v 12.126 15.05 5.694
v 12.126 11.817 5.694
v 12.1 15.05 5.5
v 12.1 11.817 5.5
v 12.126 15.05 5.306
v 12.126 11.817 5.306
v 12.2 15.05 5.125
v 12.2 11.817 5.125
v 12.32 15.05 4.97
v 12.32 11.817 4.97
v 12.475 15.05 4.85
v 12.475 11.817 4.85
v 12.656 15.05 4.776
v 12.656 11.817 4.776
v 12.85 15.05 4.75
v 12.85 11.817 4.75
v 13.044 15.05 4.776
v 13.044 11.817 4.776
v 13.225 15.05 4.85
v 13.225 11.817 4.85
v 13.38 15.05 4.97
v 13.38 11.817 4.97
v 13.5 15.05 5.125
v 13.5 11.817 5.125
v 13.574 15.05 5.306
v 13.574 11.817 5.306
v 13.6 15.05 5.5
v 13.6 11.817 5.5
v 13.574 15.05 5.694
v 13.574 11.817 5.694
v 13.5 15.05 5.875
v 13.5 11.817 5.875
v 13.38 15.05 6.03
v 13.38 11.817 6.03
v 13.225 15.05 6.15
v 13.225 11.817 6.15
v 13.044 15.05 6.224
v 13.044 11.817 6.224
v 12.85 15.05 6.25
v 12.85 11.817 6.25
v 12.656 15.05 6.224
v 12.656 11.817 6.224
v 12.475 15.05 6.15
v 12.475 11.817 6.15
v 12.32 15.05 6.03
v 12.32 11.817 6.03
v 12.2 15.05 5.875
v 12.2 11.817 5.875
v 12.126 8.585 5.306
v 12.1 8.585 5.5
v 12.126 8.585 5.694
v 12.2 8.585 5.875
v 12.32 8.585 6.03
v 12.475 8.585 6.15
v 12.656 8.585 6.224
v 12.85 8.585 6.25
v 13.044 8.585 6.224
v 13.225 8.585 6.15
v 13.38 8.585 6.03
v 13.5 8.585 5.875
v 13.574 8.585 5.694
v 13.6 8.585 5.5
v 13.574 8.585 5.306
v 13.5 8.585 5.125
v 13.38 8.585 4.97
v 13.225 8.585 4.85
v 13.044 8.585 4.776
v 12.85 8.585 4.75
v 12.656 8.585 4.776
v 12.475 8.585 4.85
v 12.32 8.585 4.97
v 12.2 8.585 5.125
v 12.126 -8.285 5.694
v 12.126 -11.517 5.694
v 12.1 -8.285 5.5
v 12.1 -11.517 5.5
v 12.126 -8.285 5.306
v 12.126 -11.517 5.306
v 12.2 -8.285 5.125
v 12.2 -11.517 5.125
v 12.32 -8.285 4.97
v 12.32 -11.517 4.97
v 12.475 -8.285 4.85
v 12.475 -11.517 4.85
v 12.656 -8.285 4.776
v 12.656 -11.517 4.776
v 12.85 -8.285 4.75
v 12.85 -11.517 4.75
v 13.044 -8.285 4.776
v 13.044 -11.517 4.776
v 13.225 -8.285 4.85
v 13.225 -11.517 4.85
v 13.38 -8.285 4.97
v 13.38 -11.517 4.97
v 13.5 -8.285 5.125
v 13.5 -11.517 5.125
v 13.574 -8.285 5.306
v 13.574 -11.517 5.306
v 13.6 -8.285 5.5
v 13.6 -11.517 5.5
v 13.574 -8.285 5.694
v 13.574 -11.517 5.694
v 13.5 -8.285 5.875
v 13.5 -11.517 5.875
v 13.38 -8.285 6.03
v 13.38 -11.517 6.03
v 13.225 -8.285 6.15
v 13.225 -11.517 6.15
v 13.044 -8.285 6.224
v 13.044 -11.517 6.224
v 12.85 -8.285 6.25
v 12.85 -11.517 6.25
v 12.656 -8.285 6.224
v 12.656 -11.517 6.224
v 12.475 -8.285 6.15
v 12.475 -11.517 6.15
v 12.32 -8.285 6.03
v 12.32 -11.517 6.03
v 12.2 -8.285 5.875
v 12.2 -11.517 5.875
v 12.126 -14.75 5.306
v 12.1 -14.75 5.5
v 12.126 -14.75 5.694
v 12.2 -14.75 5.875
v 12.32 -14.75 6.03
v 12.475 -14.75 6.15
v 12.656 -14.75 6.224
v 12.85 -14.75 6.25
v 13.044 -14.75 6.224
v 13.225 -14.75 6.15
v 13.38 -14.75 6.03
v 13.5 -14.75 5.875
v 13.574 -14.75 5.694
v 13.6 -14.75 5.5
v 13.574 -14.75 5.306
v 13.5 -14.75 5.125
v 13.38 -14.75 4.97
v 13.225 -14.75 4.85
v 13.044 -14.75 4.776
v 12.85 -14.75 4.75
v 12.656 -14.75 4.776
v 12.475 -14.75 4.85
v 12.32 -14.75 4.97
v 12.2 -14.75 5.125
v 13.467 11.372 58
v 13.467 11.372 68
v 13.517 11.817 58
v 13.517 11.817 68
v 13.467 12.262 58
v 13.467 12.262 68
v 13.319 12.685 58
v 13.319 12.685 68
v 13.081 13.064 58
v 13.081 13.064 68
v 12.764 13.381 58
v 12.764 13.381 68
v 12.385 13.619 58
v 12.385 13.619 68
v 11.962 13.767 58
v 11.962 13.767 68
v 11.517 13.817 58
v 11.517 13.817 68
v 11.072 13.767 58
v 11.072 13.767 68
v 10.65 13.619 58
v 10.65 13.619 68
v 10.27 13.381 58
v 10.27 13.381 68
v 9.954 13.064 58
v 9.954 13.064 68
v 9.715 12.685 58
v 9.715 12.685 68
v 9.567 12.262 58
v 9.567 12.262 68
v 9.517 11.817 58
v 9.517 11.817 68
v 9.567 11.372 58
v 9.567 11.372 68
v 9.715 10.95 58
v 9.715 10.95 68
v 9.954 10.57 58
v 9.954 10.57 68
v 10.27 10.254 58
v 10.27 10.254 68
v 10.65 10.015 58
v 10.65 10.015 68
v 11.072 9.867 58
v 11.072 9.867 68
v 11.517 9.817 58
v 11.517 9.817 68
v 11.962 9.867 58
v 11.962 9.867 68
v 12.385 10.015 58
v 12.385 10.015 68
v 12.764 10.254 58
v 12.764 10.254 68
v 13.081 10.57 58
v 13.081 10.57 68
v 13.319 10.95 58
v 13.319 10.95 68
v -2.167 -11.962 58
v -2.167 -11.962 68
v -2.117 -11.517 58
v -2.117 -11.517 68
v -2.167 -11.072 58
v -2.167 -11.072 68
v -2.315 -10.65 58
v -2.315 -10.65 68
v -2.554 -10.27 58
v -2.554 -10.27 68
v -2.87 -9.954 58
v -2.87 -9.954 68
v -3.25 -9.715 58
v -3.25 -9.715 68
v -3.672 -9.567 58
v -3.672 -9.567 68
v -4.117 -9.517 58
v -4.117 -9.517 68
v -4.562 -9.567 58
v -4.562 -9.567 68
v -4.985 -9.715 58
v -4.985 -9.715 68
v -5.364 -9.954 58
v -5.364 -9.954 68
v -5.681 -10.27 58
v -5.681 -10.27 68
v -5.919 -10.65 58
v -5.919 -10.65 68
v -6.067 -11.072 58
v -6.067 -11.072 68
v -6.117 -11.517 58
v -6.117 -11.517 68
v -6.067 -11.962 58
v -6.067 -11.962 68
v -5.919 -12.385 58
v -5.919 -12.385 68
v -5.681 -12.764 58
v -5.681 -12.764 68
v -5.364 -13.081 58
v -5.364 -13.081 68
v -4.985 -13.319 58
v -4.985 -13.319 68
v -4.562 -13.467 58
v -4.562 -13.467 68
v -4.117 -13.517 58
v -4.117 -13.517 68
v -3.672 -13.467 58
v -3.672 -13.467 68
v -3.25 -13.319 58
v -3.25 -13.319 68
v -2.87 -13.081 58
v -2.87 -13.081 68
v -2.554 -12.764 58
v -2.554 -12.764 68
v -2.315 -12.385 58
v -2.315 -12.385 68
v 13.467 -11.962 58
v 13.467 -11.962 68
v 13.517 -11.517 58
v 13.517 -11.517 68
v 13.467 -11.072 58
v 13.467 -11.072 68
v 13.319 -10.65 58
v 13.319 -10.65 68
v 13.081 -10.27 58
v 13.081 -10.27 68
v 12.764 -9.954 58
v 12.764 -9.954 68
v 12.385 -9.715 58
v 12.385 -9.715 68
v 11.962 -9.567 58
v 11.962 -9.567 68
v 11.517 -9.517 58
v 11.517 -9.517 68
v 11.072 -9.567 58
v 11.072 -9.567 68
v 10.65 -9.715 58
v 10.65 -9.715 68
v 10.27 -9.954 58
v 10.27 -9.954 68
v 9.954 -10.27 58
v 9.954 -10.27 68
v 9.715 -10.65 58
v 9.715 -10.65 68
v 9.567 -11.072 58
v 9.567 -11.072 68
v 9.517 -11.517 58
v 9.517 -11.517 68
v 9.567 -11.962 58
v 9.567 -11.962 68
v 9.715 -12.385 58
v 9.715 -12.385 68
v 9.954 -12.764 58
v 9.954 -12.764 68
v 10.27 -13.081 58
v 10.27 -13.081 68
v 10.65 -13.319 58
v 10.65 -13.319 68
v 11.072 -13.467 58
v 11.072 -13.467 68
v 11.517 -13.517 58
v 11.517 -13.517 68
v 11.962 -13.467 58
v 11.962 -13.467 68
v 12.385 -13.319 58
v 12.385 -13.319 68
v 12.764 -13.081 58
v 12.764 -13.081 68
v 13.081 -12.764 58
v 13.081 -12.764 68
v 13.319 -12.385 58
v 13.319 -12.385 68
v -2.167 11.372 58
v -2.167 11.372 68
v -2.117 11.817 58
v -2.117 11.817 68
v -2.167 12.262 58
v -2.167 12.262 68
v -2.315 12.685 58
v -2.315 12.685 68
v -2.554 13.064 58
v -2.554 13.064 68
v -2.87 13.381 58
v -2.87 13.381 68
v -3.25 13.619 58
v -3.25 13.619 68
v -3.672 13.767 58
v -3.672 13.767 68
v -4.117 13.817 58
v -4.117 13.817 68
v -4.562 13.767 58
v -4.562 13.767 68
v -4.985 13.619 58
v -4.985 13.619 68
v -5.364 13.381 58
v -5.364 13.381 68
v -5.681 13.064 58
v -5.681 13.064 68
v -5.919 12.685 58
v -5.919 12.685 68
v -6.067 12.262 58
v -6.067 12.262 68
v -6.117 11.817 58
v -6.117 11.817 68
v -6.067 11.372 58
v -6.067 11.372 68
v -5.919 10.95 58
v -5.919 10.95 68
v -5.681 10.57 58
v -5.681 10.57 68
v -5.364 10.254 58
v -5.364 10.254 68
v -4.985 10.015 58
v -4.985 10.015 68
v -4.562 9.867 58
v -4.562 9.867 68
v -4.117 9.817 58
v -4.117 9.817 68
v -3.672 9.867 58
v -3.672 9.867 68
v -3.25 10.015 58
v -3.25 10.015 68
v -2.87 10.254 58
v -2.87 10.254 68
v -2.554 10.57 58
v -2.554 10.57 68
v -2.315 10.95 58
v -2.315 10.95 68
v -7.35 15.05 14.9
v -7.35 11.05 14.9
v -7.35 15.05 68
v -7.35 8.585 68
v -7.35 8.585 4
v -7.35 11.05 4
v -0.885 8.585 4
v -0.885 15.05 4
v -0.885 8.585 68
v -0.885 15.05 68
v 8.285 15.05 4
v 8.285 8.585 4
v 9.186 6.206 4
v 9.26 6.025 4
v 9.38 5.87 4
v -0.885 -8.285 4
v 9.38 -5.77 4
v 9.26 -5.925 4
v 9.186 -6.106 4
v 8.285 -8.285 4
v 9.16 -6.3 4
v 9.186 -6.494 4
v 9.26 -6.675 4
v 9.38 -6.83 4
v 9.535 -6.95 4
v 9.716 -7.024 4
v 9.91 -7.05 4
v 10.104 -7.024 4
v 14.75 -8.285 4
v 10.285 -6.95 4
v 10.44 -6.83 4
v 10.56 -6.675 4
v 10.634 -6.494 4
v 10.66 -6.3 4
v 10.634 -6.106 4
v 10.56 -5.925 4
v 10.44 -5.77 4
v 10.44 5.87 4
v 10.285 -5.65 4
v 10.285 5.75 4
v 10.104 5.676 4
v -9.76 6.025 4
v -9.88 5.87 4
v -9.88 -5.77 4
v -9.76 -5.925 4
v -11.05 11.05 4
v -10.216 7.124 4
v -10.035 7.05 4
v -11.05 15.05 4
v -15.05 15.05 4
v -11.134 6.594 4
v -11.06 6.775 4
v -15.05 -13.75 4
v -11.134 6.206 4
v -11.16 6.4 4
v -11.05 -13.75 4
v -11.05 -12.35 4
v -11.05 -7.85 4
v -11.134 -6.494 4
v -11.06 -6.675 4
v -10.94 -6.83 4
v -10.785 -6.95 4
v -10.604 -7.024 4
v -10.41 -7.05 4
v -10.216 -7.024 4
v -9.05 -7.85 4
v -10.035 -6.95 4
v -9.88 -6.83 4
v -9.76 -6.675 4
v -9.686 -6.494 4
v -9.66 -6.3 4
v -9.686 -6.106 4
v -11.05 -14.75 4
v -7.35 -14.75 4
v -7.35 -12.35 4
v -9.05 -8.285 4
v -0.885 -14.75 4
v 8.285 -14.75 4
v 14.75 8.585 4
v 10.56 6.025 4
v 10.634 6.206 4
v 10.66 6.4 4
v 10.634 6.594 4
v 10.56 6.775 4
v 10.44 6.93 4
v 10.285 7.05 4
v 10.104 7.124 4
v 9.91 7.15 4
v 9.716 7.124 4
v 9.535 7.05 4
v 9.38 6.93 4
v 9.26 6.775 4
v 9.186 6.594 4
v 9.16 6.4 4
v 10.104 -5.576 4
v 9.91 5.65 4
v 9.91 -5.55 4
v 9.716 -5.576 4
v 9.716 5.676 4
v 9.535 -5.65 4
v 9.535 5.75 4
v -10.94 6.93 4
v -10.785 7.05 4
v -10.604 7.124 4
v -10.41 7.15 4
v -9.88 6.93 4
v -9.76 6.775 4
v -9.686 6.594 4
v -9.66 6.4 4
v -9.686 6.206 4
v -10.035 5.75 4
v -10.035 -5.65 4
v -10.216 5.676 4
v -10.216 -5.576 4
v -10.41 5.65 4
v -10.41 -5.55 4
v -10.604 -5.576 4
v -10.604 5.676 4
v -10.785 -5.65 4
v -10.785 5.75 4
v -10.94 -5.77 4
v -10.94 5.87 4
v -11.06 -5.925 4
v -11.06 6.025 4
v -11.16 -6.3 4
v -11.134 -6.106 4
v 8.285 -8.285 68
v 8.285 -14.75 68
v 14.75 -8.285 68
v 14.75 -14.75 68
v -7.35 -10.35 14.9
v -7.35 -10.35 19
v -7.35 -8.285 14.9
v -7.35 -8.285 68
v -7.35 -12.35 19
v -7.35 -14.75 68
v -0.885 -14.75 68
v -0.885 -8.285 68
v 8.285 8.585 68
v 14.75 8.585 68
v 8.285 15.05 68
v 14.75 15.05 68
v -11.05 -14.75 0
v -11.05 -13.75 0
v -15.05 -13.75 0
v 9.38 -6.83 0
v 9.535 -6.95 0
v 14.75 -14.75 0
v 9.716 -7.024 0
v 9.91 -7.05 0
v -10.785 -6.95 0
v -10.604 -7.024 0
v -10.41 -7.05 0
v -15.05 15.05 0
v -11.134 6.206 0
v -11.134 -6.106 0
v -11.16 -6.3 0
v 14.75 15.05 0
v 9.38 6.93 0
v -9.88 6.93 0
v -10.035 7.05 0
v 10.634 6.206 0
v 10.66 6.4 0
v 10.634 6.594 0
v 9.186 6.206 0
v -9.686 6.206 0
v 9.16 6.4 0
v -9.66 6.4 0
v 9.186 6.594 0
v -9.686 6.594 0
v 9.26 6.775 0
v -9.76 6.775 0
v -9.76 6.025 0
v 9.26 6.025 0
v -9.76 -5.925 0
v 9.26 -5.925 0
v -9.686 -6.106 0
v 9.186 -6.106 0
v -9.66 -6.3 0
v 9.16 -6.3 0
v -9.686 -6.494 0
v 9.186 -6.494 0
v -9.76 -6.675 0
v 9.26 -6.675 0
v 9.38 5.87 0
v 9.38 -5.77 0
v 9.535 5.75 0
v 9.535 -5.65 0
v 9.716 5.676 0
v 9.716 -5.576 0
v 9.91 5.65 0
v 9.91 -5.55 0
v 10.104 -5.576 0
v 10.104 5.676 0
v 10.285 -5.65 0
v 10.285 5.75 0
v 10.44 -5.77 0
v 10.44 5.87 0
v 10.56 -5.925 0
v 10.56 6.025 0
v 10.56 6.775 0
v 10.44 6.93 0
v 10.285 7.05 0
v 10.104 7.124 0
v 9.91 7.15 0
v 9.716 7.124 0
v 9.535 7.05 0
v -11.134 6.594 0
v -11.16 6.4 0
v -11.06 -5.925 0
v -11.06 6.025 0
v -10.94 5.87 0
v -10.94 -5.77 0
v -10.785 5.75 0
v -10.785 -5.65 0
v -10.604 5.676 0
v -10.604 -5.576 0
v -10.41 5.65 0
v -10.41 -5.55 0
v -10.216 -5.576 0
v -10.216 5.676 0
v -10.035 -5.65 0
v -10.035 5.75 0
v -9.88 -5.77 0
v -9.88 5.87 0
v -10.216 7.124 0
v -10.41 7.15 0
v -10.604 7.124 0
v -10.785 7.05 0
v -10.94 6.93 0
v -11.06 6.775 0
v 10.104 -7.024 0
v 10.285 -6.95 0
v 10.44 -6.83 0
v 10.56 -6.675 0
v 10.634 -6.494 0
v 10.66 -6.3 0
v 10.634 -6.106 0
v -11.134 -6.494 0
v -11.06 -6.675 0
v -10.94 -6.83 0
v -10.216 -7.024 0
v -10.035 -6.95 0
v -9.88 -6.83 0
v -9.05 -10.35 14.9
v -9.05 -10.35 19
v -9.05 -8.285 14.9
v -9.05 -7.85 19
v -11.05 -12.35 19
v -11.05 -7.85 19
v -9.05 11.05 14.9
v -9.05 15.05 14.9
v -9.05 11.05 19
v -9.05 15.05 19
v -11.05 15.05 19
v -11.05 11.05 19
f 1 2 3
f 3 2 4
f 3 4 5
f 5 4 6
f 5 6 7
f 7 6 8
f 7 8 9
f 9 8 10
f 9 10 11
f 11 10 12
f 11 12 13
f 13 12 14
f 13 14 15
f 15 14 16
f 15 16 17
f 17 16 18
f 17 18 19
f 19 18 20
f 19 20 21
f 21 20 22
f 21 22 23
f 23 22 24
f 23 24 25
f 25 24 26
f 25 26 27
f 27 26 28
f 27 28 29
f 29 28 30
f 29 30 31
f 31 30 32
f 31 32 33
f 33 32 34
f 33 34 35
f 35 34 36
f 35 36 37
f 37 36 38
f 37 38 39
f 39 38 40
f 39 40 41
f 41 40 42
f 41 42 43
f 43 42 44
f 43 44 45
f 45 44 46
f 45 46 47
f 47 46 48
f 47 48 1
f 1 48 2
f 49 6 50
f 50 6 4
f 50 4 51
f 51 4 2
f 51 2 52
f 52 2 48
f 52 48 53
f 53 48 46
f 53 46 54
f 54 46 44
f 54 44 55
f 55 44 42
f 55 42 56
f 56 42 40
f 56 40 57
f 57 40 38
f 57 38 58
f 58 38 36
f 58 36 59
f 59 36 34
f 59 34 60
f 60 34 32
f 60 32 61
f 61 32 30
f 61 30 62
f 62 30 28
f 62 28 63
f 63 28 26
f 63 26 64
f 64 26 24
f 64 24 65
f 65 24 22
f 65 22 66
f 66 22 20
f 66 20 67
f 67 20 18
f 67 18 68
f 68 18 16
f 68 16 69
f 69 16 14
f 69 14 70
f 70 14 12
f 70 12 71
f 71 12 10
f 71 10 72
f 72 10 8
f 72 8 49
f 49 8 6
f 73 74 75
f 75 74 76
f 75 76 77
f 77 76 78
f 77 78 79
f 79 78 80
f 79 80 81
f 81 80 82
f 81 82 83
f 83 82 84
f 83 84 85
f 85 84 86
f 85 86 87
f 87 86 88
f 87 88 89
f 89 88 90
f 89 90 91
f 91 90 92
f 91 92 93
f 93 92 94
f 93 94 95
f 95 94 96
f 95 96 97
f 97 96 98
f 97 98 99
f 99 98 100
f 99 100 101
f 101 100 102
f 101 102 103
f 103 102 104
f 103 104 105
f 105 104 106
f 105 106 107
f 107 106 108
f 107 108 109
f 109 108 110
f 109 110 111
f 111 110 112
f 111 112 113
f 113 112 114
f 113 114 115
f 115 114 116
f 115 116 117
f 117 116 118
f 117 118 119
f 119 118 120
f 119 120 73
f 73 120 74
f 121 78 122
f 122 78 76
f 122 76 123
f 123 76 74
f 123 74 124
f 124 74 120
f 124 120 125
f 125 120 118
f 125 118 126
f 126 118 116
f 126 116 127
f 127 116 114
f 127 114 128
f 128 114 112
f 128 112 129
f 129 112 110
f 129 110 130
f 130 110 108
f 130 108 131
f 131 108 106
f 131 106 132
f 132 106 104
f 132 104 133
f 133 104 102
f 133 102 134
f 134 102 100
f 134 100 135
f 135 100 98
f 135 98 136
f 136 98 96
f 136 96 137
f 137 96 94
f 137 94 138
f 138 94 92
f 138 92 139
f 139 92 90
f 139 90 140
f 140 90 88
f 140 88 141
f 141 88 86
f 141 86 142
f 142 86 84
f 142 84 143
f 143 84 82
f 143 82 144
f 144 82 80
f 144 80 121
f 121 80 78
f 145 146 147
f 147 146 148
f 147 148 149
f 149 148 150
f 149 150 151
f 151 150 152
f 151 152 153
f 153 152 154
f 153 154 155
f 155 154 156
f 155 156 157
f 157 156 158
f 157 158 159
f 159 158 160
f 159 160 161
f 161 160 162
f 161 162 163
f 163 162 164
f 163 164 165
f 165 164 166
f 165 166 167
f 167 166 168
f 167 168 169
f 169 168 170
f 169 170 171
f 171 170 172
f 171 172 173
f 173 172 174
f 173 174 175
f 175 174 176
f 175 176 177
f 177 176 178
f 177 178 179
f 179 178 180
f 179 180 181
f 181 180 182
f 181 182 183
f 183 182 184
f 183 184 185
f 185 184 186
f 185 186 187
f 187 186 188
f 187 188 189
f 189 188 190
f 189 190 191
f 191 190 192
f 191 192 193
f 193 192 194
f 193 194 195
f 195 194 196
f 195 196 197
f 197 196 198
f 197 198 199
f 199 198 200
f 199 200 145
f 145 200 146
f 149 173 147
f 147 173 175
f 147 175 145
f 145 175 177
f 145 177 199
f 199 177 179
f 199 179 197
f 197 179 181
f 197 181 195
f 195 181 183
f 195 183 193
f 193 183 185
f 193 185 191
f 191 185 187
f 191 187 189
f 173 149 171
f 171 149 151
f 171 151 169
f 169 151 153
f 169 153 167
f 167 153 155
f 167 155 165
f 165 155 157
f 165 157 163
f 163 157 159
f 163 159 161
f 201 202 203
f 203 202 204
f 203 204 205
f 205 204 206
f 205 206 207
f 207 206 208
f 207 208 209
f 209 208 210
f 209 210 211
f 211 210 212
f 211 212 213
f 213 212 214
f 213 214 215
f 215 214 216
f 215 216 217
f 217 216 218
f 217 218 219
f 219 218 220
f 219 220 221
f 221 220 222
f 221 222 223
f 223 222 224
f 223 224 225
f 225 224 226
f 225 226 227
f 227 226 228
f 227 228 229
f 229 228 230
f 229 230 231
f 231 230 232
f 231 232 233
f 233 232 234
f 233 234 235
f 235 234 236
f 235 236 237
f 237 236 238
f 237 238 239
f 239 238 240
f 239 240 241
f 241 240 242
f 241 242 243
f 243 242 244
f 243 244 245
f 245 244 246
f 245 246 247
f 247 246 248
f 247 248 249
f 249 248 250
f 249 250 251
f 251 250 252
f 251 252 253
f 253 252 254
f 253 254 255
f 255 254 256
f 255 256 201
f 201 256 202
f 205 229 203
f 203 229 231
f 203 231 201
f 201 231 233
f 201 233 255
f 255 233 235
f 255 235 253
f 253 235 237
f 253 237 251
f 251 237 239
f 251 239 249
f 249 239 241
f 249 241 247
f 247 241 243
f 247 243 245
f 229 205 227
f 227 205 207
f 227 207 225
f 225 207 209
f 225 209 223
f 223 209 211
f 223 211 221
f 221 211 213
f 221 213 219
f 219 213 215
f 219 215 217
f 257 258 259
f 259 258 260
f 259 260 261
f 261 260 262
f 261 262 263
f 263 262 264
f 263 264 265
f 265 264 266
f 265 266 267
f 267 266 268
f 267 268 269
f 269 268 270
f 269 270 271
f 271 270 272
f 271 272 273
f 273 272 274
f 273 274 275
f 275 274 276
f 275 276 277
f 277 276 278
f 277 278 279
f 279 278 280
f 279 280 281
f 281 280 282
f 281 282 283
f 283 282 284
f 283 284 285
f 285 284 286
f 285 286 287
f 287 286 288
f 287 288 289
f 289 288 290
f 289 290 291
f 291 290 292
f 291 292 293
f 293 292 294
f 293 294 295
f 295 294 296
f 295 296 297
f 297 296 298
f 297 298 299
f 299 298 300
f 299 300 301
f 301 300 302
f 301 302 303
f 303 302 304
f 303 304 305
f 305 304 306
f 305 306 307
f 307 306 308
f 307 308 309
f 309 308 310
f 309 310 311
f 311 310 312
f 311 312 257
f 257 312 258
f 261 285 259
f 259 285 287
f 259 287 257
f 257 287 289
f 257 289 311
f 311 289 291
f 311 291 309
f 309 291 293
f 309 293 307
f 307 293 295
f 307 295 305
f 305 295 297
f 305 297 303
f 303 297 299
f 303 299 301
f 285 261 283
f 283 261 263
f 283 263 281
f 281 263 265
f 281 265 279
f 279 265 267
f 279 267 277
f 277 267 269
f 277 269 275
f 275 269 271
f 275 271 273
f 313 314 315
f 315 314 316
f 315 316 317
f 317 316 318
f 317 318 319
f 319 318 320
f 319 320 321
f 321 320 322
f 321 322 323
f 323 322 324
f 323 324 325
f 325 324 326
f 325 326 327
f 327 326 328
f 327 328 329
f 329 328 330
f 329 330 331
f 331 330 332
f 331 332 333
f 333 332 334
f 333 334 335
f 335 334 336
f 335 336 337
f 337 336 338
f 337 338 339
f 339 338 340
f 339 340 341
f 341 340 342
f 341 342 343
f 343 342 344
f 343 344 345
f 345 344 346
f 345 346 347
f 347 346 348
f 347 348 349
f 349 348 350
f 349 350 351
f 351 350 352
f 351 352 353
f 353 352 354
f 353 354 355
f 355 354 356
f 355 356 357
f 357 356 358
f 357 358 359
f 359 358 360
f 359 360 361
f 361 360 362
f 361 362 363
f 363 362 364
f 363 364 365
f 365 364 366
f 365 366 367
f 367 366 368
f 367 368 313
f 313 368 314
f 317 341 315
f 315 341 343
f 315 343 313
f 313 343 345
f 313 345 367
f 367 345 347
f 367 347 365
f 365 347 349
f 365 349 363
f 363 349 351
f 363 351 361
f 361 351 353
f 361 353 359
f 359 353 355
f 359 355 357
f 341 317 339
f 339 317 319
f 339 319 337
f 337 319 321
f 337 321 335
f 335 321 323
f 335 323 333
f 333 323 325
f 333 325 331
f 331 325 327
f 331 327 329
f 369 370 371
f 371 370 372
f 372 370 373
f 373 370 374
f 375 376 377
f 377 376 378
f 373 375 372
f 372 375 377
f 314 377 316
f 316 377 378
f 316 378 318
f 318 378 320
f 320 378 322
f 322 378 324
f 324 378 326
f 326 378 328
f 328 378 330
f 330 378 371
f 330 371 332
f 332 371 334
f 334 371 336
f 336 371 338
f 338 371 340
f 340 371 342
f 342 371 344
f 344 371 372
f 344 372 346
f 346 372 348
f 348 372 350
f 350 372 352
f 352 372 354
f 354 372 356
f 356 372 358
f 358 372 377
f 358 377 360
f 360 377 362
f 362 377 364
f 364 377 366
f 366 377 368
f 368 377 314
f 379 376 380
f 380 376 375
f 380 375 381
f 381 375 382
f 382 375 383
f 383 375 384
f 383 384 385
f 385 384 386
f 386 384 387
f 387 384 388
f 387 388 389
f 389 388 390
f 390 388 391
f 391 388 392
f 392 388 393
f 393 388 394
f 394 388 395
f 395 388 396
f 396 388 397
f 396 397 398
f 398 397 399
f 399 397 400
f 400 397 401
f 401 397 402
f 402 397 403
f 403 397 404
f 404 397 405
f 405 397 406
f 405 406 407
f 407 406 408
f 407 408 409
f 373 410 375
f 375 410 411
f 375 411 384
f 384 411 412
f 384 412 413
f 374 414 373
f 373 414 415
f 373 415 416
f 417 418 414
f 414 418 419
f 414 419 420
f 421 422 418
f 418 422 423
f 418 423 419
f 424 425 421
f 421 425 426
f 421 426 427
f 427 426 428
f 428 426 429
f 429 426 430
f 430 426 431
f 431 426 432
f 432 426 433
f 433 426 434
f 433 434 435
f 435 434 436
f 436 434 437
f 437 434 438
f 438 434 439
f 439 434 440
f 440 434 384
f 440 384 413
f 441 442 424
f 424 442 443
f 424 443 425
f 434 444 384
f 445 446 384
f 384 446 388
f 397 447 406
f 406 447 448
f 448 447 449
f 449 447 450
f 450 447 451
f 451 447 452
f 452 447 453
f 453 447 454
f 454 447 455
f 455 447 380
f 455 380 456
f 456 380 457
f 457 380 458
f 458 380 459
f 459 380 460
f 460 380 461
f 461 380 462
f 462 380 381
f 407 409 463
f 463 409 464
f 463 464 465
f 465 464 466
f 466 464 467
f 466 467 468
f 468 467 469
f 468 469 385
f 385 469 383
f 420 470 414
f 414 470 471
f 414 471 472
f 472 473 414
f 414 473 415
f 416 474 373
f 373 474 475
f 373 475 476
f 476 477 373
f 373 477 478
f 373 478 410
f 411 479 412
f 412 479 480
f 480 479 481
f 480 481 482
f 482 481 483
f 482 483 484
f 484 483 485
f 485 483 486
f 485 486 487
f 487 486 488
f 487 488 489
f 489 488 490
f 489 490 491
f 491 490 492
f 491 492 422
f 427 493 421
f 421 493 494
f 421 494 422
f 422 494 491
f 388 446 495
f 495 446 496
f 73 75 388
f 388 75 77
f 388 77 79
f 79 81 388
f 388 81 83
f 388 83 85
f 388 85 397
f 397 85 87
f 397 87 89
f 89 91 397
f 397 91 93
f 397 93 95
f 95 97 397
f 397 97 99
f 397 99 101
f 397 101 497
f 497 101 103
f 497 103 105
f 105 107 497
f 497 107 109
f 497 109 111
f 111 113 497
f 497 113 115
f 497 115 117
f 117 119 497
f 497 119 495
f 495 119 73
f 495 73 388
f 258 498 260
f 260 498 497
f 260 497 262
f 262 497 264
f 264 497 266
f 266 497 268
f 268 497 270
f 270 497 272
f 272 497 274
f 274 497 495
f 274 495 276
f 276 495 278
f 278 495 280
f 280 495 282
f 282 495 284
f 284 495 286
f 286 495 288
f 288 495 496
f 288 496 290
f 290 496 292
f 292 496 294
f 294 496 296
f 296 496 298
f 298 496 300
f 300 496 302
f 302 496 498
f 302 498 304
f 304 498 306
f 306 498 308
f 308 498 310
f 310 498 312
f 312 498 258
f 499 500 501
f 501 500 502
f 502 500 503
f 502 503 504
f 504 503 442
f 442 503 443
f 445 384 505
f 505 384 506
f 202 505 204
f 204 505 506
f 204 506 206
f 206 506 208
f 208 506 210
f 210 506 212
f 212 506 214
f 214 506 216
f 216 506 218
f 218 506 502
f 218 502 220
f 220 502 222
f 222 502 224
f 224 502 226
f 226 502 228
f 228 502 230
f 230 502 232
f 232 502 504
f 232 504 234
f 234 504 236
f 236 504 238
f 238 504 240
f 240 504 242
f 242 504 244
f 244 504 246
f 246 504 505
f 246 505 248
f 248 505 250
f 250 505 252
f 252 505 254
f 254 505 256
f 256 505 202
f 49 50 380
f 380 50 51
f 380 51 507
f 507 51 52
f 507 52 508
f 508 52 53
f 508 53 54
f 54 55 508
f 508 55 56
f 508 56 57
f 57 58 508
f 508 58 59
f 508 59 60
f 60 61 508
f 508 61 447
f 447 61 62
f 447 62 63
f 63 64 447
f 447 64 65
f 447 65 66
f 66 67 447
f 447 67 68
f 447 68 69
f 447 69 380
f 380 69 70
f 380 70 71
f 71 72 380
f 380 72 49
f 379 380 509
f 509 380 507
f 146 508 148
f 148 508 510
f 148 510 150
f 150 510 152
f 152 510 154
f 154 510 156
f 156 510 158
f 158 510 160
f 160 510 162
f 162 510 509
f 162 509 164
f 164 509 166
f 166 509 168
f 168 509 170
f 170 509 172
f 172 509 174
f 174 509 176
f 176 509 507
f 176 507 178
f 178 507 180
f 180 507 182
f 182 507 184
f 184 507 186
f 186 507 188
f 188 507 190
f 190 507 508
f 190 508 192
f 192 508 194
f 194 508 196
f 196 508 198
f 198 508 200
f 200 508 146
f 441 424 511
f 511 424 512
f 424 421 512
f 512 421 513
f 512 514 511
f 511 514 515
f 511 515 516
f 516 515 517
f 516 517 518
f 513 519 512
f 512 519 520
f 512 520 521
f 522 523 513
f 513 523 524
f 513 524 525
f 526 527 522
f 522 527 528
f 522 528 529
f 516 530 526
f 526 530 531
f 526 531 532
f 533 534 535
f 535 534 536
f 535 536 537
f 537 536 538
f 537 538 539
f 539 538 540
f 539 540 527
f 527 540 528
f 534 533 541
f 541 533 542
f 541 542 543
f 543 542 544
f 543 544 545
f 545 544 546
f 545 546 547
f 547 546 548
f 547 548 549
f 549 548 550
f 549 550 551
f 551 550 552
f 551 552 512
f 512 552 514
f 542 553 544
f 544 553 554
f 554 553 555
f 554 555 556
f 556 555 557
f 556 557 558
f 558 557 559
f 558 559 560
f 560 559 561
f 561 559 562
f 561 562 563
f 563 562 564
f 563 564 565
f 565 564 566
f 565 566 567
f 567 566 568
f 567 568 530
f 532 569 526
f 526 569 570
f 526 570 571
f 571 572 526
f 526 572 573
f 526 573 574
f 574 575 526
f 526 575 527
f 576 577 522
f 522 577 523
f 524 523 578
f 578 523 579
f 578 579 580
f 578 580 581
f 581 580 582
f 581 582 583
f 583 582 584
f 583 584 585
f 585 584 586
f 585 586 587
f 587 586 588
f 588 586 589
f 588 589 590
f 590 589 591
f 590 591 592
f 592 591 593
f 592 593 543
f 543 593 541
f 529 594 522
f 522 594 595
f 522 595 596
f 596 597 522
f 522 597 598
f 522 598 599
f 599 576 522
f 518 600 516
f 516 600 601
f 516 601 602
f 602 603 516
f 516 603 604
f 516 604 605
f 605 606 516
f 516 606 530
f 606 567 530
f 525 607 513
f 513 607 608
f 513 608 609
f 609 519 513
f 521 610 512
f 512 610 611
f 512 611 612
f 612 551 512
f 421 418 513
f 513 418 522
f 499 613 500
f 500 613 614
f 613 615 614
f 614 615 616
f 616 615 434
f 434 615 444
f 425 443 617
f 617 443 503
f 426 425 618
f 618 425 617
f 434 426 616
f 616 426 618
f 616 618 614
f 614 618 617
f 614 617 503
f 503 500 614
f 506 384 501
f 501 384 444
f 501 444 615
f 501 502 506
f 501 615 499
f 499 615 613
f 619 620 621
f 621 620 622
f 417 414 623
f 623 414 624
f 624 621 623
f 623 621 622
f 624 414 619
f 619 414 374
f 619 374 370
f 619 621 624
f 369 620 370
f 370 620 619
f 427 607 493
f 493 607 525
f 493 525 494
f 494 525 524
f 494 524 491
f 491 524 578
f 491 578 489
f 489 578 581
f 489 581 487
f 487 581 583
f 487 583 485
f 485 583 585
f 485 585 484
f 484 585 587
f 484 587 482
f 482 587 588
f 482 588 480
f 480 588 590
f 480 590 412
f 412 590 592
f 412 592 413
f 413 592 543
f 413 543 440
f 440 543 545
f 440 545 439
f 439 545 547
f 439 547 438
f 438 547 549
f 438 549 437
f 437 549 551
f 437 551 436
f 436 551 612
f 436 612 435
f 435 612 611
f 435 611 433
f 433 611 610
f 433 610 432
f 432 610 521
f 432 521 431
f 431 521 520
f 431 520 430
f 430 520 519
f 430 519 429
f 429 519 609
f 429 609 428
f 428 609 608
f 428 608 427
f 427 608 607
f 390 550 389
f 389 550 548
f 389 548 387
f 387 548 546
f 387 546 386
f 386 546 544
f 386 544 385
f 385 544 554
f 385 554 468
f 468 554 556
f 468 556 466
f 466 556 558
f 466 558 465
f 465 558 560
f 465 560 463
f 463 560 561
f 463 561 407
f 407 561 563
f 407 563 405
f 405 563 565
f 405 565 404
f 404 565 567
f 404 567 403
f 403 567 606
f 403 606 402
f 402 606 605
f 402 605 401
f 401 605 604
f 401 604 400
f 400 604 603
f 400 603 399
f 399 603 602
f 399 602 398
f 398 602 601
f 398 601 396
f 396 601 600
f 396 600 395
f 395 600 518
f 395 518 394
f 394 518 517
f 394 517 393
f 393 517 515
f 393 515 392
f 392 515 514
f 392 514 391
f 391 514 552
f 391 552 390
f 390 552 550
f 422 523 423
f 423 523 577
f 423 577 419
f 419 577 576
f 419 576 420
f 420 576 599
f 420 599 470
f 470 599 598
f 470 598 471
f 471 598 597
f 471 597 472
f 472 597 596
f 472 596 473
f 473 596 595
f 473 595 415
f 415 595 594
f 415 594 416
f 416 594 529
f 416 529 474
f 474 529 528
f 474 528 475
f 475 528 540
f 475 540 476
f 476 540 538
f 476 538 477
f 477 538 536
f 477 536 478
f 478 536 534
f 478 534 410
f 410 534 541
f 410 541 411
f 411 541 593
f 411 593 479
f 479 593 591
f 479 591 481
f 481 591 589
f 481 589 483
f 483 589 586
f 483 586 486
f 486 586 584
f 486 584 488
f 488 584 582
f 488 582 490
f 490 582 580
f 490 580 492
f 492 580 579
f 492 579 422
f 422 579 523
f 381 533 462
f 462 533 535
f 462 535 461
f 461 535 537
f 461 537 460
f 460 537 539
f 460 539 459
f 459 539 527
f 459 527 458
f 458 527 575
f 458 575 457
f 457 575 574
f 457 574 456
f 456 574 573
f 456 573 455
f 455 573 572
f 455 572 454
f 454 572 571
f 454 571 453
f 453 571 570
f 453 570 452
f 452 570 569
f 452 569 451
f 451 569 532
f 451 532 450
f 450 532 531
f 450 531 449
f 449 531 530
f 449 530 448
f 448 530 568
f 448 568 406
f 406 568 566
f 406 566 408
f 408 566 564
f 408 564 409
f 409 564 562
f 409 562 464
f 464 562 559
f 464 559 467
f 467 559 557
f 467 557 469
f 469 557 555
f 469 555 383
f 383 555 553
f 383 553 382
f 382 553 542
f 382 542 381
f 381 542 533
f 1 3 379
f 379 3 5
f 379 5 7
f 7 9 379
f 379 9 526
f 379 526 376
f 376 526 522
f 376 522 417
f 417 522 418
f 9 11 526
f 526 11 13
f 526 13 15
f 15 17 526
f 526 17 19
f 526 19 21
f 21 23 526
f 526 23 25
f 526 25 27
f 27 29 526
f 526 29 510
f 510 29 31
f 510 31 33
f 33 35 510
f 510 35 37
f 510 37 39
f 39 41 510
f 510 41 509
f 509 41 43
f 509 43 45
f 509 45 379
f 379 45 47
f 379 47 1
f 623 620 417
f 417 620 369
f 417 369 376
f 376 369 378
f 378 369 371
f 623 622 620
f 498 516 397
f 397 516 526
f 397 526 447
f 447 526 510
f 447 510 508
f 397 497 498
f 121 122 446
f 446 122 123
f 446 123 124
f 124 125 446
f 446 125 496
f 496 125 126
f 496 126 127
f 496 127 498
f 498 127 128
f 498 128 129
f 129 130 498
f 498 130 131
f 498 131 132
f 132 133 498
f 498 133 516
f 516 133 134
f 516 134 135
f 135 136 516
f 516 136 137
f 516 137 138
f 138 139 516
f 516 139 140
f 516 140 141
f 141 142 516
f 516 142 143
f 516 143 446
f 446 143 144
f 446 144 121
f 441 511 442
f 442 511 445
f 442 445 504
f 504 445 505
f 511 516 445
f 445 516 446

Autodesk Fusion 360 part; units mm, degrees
sketch "Skizze1" plane through (0, 0, 0) normal (0, 0, 1) x (1, 0, 0)
  line L0 (-15.05, 15.05) -> (14.75, 15.05)
  line L1 (14.75, 15.05) -> (14.75, -14.75)
  line L2 (14.75, -14.75) -> (-15.05, -14.75)
  line L3 (-15.05, -14.75) -> (-15.05, 15.05)
  circle A0 centre (-10.41, 6.4) radius 0.75
  circle A1 centre (9.91, 6.4) radius 0.75
  circle A2 centre (-10.41, -6.3) radius 0.75
  circle A3 centre (9.91, -6.3) radius 0.75
  dimension "d1" = 14.75
  dimension "d3" = 14.75
  dimension "d4" = 29.8
  dimension "d5" = 1.5
  dimension "d6" = 1.5
  dimension "d7" = 1.5
  dimension "d8" = 1.5
  dimension "d9" = 20.32
  dimension "d10" = 20.32
  dimension "d11" = 12.7
  dimension "d12" = 12.7
  dimension "d13" = 4.84
  dimension "d14" = 8.65
  dimension "d15" = 4.84
  dimension "d120" = 8.65
extrude "Extrusion1" add sketch "Skizze1" along normal blind 4 contours L0 L1 L2 L3 | A0 | A1 | A2 | A3 makes body 1
sketch "Skizze2" plane through (0, 0, 4) normal (0, 0, 1) x (-1, 0, 0)
  line L0 (15.05, 14.75) -> (-14.75, 14.75)
  line L1 (-14.75, 14.75) -> (-14.75, -15.05)
  line L2 (-14.75, -15.05) -> (15.05, -15.05)
  line L3 (15.05, -15.05) -> (15.05, 14.75)
  circle A0 centre (-3.7, -0.15) radius 9.6
  circle A1 centre (-3.7, -0.15) radius 11.6
  circle A2 centre (-9.91, 6.3) radius 0.75
  line L4 (-14.75, 14.75) -> (15.05, 14.75)
  line L5 (15.05, -15.05) -> (-14.75, -15.05)
  line L6 (15.05, 14.75) -> (11.05, 14.75)
  line L7 (11.05, 14.75) -> (11.05, 13.75)
  line L8 (11.05, 13.75) -> (15.05, 13.75)
  line L9 (15.05, 13.75) -> (15.05, 14.75)
  line L10 (15.05, 14.75) -> (14.05, 14.75)
  line L11 (14.05, 14.75) -> (14.0476, 10.75)
  line L12 (14.0476, 10.75) -> (15.05, 10.75)
  line L13 (15.05, 10.75) -> (15.05, 14.75)
  line L14 (7.35, -15.05) -> (9.05, -15.05)
  line L15 (9.05, -15.05) -> (9.05, 10.35)
  line L16 (9.05, 10.35) -> (7.35, 10.35)
  line L17 (7.35, 10.35) -> (7.35, -15.05)
  line L18 (5.35, -17.05) -> (11.05, -17.05)
  line L19 (11.05, -17.05) -> (11.05, 12.35)
  line L20 (11.05, 12.35) -> (5.35, 12.35)
  line L21 (5.35, 12.35) -> (5.35, -17.05)
  line L22 (5.35, 6.35) -> (11.05, 6.35)
  line L23 (5.35, -11.05) -> (11.05, -11.05)
  line L24 (-14.75, -15.05) -> (-8.2846, -15.05)
  line L25 (-8.2846, -15.05) -> (-8.2846, -8.5846)
  line L26 (-8.2846, -8.5846) -> (-14.75, -8.5846)
  line L27 (-14.75, -8.5846) -> (-14.75, -15.05)
  line L28 (-14.75, 14.75) -> (-8.2846, 14.75)
  line L29 (-8.2846, 14.75) -> (-8.2846, 8.2846)
  line L30 (-8.2846, 8.2846) -> (-14.75, 8.2846)
  line L31 (-14.75, 8.2846) -> (-14.75, 14.75)
  line L32 (7.35, -15.05) -> (0.8846, -15.05)
  line L33 (0.8846, -15.05) -> (0.8846, -8.5846)
  line L34 (0.8846, -8.5846) -> (7.35, -8.5846)
  line L35 (7.35, -8.5846) -> (7.35, -15.05)
  line L36 (0.8846, 14.75) -> (7.35, 14.75)
  line L37 (7.35, 14.75) -> (7.35, 8.2846)
  line L38 (7.35, 8.2846) -> (0.8846, 8.2846)
  line L39 (0.8846, 8.2846) -> (0.8846, 14.75)
  line L40 (9.05, 7.85) -> (11.05, 7.85)
  line L41 (7.35, 8.2846) -> (11.05, 8.2846)
  line L42 (-11.5203, -7.2177) -> (-14.8261, 3.1318)
  line L43 (-11.9705, 6.4686) -> (-11.6289, 6.5777)
  line L44 (-11.6289, 6.5777) -> (-13.2589, 1.4745)
  line L45 (-3.7, -0.15) -> (-14.75, 3.3795)
  line L46 (-3.7, -0.15) -> (-14.75, -3.6795)
  dimension "d18" = 19.2
  dimension "d19" = 2
  dimension "d26" = 14.9
  dimension "d135" = 4
  dimension "d136" = 1
  dimension "d137" = 1
  dimension "d138" = 4
  dimension "d153" = 1.7
  dimension "d154" = 25.4
  dimension "d155" = 2
  dimension "d156" = 4
  dimension "d157" = 4
  dimension "d160" = 6
  dimension "d215" = 11.05
extrude "Extrusion29" cut sketch "Skizze1" along normal blind 4 contours A0 | A1 | A2 | A3 bodies 1
extrude "Extrusion31" add sketch "Skizze2" along normal blind 10.9 separate body contours L15 L16 L17 L37 L41 | L2 L5 L14 L15 L17 L23 L35 makes body 2 at (-7.35, -9.6615, 11.2667) makes body 3 at (-7.35, 12.3833, 7.6333)
extrude "Extrusion32" add sketch "Skizze2" along normal blind 15 contours L15 L16 L19 L20 L37 L41 | L2 L5 L15 L19 L23 | L15 L19 L40 L41 bodies 1 2 3
extrude "Extrusion34" cut sketch "Skizze2" against normal blind 4 contours L0 L3 L4 L6 L8 L9 L10 L11 L13 | L0 L4 L6 L7 L8 L11 bodies 1
extrude "Extrusion35" add sketch "Skizze2" along normal blind 64 contours L0 A1 L4 L20 L21 L36 L37 L38 L39 | L17 L20 L21 L37 L38 | L0 L1 A1 L4 L28 L29 L30 L31 | A1 L38 L39 | A1 L29 L30 | L2 L5 L17 L21 L23 L32 L35 | L2 A1 L5 L21 L32 L33 L34 | L17 L21 L23 L34 L35 | A1 L33 L34 | L1 L2 A1 L5 L24 L25 L26 L27 | A1 L25 L26 bodies 1
sketch "Skizze9" plane through (0, 0, 68) normal (0, 0, 1) x (-1, 0, 0)
  line L0 (-14.75, 8.2846) -> (-8.2846, 8.2846)
  line L1 (-8.2846, 8.2846) -> (-8.2846, 14.75)
  line L2 (-8.2846, 14.75) -> (-14.75, 14.75)
  line L3 (-14.75, 14.75) -> (-14.75, 8.2846)
  line L4 (-14.75, 14.75) -> (-8.2846, 8.2846)
  line L5 (-14.75, 8.2846) -> (-8.2846, 14.75)
  circle A0 centre (-11.5173, 11.5173) radius 2
  dimension "d225" = 4
sketch "Skizze10" plane through (0, 0, 68) normal (0, 0, 1) x (-1, 0, 0)
  line L0 (0.8846, 8.2846) -> (7.35, 8.2846)
  line L1 (7.35, 8.2846) -> (7.35, 14.75)
  line L2 (7.35, 14.75) -> (0.8846, 14.75)
  line L3 (0.8846, 14.75) -> (0.8846, 8.2846)
  line L4 (0.8846, 8.2846) -> (7.35, 14.75)
  line L5 (0.8846, 14.75) -> (7.35, 8.2846)
  circle A0 centre (4.1173, 11.5173) radius 2
  dimension "d226" = 4
sketch "Skizze11" plane through (0, 0, 68) normal (0, 0, 1) x (-1, 0, 0)
  line L0 (7.35, -8.5846) -> (0.8846, -8.5846)
  line L1 (0.8846, -8.5846) -> (0.8846, -15.05)
  line L2 (0.8846, -15.05) -> (7.35, -15.05)
  line L3 (7.35, -15.05) -> (7.35, -8.5846)
  line L4 (0.8846, -8.5846) -> (7.35, -15.05)
  line L5 (0.8846, -15.05) -> (7.35, -8.5846)
  circle A0 centre (4.1173, -11.8173) radius 2
  dimension "d227" = 4
sketch "Skizze12" plane through (0, 0, 68) normal (0, 0, 1) x (-1, 0, 0)
  line L0 (-14.75, -8.5846) -> (-14.75, -15.05)
  line L1 (-14.75, -15.05) -> (-8.2846, -15.05)
  line L2 (-8.2846, -15.05) -> (-8.2846, -8.5846)
  line L3 (-8.2846, -8.5846) -> (-14.75, -8.5846)
  line L4 (-14.75, -8.5846) -> (-8.2846, -15.05)
  line L5 (-14.75, -15.05) -> (-8.2846, -8.5846)
  circle A0 centre (-11.5173, -11.8173) radius 2
  dimension "d228" = 4
extrude "Extrusion36" cut sketch "Skizze10" sketch "Skizze9" sketch "Skizze12" sketch "Skizze11" against normal blind 10 contours L4 L5 A0 | L4 L5 A0 | L4 L5 A0 | L4 L5 A0 of sketch 2 contours L4 L5 A0 | L4 L5 A0 | L4 L5 A0 | L4 L5 A0 of sketch 3 contours L4 L5 A0 | L4 L5 A0 | L4 L5 A0 | L4 L5 A0 of sketch 4 contours L4 L5 A0 | L4 L5 A0 | L4 L5 A0 | L4 L5 A0 bodies 1
sketch "Skizze13" plane through (0, -14.75, 0) normal (0, -1, 0) x (1, 0, 0)
  line L0 (-11.05, 4) -> (-11.05, 0)
  line L1 (-11.05, 0) -> (14.75, 0)
  line L2 (14.75, 0) -> (14.75, 68)
  line L3 (14.75, 68) -> (8.2846, 68)
  line L4 (8.2846, 68) -> (8.2846, 4)
  line L5 (8.2846, 4) -> (-0.8846, 4)
  line L6 (-0.8846, 4) -> (-0.8846, 68)
  line L7 (-0.8846, 68) -> (-7.35, 68)
  line L8 (-7.35, 68) -> (-7.35, 4)
  line L9 (-7.35, 4) -> (-11.05, 4)
  circle A0 centre (12.85, 6) radius 2
  line L10 (14.75, 0) -> (-15.05, 0)
  circle A1 centre (6.35, 6) radius 2
  circle A2 centre (-0.15, 6) radius 2
  circle A3 centre (-6.65, 6) radius 2
  circle A4 centre (-13.15, 6) radius 2
  line L11 (-6.65, 6) -> (-6.65, 5.5)
  circle A5 centre (-6.65, 5.5) radius 1.5
  circle A6 centre (-6.65, 5.5) radius 0.65
  line L12 (12.85, 6) -> (12.85, 5.5)
  circle A7 centre (12.85, 5.5) radius 1.5
  circle A8 centre (12.85, 5.5) radius 0.75
  dimension "d231" = 4
  dimension "d232" = 6
  dimension "d233" = 1.9
  dimension "d236" = -26
  dimension "d237" = 0
  dimension "d240" = 0.5
  dimension "d241" = 3
  dimension "d242" = 1.3
  dimension "d243" = 0.5
  dimension "d244" = 1.5
extrude "Extrusion37" cut sketch "Skizze13" against normal blind 29.8 contours A8 bodies 1
equation "d1 = 29.5 mm / 2"
equation "d3 = 29.5 mm / 2"
equation "d13 = ( 30 mm - 0.8 in ) / 2"
equation "d14 = ( 30 mm - 0.5 in ) / 2"
equation "d15 = ( 30 mm - 0.8 in ) / 2"
equation "d26 = ( 29.8 / 2 ) * 1 mm"
equation "d120 = ( 30 mm - 0.5 in ) / 2"
equation "d215 = ( 22.1 / 2 ) * 1 mm"
